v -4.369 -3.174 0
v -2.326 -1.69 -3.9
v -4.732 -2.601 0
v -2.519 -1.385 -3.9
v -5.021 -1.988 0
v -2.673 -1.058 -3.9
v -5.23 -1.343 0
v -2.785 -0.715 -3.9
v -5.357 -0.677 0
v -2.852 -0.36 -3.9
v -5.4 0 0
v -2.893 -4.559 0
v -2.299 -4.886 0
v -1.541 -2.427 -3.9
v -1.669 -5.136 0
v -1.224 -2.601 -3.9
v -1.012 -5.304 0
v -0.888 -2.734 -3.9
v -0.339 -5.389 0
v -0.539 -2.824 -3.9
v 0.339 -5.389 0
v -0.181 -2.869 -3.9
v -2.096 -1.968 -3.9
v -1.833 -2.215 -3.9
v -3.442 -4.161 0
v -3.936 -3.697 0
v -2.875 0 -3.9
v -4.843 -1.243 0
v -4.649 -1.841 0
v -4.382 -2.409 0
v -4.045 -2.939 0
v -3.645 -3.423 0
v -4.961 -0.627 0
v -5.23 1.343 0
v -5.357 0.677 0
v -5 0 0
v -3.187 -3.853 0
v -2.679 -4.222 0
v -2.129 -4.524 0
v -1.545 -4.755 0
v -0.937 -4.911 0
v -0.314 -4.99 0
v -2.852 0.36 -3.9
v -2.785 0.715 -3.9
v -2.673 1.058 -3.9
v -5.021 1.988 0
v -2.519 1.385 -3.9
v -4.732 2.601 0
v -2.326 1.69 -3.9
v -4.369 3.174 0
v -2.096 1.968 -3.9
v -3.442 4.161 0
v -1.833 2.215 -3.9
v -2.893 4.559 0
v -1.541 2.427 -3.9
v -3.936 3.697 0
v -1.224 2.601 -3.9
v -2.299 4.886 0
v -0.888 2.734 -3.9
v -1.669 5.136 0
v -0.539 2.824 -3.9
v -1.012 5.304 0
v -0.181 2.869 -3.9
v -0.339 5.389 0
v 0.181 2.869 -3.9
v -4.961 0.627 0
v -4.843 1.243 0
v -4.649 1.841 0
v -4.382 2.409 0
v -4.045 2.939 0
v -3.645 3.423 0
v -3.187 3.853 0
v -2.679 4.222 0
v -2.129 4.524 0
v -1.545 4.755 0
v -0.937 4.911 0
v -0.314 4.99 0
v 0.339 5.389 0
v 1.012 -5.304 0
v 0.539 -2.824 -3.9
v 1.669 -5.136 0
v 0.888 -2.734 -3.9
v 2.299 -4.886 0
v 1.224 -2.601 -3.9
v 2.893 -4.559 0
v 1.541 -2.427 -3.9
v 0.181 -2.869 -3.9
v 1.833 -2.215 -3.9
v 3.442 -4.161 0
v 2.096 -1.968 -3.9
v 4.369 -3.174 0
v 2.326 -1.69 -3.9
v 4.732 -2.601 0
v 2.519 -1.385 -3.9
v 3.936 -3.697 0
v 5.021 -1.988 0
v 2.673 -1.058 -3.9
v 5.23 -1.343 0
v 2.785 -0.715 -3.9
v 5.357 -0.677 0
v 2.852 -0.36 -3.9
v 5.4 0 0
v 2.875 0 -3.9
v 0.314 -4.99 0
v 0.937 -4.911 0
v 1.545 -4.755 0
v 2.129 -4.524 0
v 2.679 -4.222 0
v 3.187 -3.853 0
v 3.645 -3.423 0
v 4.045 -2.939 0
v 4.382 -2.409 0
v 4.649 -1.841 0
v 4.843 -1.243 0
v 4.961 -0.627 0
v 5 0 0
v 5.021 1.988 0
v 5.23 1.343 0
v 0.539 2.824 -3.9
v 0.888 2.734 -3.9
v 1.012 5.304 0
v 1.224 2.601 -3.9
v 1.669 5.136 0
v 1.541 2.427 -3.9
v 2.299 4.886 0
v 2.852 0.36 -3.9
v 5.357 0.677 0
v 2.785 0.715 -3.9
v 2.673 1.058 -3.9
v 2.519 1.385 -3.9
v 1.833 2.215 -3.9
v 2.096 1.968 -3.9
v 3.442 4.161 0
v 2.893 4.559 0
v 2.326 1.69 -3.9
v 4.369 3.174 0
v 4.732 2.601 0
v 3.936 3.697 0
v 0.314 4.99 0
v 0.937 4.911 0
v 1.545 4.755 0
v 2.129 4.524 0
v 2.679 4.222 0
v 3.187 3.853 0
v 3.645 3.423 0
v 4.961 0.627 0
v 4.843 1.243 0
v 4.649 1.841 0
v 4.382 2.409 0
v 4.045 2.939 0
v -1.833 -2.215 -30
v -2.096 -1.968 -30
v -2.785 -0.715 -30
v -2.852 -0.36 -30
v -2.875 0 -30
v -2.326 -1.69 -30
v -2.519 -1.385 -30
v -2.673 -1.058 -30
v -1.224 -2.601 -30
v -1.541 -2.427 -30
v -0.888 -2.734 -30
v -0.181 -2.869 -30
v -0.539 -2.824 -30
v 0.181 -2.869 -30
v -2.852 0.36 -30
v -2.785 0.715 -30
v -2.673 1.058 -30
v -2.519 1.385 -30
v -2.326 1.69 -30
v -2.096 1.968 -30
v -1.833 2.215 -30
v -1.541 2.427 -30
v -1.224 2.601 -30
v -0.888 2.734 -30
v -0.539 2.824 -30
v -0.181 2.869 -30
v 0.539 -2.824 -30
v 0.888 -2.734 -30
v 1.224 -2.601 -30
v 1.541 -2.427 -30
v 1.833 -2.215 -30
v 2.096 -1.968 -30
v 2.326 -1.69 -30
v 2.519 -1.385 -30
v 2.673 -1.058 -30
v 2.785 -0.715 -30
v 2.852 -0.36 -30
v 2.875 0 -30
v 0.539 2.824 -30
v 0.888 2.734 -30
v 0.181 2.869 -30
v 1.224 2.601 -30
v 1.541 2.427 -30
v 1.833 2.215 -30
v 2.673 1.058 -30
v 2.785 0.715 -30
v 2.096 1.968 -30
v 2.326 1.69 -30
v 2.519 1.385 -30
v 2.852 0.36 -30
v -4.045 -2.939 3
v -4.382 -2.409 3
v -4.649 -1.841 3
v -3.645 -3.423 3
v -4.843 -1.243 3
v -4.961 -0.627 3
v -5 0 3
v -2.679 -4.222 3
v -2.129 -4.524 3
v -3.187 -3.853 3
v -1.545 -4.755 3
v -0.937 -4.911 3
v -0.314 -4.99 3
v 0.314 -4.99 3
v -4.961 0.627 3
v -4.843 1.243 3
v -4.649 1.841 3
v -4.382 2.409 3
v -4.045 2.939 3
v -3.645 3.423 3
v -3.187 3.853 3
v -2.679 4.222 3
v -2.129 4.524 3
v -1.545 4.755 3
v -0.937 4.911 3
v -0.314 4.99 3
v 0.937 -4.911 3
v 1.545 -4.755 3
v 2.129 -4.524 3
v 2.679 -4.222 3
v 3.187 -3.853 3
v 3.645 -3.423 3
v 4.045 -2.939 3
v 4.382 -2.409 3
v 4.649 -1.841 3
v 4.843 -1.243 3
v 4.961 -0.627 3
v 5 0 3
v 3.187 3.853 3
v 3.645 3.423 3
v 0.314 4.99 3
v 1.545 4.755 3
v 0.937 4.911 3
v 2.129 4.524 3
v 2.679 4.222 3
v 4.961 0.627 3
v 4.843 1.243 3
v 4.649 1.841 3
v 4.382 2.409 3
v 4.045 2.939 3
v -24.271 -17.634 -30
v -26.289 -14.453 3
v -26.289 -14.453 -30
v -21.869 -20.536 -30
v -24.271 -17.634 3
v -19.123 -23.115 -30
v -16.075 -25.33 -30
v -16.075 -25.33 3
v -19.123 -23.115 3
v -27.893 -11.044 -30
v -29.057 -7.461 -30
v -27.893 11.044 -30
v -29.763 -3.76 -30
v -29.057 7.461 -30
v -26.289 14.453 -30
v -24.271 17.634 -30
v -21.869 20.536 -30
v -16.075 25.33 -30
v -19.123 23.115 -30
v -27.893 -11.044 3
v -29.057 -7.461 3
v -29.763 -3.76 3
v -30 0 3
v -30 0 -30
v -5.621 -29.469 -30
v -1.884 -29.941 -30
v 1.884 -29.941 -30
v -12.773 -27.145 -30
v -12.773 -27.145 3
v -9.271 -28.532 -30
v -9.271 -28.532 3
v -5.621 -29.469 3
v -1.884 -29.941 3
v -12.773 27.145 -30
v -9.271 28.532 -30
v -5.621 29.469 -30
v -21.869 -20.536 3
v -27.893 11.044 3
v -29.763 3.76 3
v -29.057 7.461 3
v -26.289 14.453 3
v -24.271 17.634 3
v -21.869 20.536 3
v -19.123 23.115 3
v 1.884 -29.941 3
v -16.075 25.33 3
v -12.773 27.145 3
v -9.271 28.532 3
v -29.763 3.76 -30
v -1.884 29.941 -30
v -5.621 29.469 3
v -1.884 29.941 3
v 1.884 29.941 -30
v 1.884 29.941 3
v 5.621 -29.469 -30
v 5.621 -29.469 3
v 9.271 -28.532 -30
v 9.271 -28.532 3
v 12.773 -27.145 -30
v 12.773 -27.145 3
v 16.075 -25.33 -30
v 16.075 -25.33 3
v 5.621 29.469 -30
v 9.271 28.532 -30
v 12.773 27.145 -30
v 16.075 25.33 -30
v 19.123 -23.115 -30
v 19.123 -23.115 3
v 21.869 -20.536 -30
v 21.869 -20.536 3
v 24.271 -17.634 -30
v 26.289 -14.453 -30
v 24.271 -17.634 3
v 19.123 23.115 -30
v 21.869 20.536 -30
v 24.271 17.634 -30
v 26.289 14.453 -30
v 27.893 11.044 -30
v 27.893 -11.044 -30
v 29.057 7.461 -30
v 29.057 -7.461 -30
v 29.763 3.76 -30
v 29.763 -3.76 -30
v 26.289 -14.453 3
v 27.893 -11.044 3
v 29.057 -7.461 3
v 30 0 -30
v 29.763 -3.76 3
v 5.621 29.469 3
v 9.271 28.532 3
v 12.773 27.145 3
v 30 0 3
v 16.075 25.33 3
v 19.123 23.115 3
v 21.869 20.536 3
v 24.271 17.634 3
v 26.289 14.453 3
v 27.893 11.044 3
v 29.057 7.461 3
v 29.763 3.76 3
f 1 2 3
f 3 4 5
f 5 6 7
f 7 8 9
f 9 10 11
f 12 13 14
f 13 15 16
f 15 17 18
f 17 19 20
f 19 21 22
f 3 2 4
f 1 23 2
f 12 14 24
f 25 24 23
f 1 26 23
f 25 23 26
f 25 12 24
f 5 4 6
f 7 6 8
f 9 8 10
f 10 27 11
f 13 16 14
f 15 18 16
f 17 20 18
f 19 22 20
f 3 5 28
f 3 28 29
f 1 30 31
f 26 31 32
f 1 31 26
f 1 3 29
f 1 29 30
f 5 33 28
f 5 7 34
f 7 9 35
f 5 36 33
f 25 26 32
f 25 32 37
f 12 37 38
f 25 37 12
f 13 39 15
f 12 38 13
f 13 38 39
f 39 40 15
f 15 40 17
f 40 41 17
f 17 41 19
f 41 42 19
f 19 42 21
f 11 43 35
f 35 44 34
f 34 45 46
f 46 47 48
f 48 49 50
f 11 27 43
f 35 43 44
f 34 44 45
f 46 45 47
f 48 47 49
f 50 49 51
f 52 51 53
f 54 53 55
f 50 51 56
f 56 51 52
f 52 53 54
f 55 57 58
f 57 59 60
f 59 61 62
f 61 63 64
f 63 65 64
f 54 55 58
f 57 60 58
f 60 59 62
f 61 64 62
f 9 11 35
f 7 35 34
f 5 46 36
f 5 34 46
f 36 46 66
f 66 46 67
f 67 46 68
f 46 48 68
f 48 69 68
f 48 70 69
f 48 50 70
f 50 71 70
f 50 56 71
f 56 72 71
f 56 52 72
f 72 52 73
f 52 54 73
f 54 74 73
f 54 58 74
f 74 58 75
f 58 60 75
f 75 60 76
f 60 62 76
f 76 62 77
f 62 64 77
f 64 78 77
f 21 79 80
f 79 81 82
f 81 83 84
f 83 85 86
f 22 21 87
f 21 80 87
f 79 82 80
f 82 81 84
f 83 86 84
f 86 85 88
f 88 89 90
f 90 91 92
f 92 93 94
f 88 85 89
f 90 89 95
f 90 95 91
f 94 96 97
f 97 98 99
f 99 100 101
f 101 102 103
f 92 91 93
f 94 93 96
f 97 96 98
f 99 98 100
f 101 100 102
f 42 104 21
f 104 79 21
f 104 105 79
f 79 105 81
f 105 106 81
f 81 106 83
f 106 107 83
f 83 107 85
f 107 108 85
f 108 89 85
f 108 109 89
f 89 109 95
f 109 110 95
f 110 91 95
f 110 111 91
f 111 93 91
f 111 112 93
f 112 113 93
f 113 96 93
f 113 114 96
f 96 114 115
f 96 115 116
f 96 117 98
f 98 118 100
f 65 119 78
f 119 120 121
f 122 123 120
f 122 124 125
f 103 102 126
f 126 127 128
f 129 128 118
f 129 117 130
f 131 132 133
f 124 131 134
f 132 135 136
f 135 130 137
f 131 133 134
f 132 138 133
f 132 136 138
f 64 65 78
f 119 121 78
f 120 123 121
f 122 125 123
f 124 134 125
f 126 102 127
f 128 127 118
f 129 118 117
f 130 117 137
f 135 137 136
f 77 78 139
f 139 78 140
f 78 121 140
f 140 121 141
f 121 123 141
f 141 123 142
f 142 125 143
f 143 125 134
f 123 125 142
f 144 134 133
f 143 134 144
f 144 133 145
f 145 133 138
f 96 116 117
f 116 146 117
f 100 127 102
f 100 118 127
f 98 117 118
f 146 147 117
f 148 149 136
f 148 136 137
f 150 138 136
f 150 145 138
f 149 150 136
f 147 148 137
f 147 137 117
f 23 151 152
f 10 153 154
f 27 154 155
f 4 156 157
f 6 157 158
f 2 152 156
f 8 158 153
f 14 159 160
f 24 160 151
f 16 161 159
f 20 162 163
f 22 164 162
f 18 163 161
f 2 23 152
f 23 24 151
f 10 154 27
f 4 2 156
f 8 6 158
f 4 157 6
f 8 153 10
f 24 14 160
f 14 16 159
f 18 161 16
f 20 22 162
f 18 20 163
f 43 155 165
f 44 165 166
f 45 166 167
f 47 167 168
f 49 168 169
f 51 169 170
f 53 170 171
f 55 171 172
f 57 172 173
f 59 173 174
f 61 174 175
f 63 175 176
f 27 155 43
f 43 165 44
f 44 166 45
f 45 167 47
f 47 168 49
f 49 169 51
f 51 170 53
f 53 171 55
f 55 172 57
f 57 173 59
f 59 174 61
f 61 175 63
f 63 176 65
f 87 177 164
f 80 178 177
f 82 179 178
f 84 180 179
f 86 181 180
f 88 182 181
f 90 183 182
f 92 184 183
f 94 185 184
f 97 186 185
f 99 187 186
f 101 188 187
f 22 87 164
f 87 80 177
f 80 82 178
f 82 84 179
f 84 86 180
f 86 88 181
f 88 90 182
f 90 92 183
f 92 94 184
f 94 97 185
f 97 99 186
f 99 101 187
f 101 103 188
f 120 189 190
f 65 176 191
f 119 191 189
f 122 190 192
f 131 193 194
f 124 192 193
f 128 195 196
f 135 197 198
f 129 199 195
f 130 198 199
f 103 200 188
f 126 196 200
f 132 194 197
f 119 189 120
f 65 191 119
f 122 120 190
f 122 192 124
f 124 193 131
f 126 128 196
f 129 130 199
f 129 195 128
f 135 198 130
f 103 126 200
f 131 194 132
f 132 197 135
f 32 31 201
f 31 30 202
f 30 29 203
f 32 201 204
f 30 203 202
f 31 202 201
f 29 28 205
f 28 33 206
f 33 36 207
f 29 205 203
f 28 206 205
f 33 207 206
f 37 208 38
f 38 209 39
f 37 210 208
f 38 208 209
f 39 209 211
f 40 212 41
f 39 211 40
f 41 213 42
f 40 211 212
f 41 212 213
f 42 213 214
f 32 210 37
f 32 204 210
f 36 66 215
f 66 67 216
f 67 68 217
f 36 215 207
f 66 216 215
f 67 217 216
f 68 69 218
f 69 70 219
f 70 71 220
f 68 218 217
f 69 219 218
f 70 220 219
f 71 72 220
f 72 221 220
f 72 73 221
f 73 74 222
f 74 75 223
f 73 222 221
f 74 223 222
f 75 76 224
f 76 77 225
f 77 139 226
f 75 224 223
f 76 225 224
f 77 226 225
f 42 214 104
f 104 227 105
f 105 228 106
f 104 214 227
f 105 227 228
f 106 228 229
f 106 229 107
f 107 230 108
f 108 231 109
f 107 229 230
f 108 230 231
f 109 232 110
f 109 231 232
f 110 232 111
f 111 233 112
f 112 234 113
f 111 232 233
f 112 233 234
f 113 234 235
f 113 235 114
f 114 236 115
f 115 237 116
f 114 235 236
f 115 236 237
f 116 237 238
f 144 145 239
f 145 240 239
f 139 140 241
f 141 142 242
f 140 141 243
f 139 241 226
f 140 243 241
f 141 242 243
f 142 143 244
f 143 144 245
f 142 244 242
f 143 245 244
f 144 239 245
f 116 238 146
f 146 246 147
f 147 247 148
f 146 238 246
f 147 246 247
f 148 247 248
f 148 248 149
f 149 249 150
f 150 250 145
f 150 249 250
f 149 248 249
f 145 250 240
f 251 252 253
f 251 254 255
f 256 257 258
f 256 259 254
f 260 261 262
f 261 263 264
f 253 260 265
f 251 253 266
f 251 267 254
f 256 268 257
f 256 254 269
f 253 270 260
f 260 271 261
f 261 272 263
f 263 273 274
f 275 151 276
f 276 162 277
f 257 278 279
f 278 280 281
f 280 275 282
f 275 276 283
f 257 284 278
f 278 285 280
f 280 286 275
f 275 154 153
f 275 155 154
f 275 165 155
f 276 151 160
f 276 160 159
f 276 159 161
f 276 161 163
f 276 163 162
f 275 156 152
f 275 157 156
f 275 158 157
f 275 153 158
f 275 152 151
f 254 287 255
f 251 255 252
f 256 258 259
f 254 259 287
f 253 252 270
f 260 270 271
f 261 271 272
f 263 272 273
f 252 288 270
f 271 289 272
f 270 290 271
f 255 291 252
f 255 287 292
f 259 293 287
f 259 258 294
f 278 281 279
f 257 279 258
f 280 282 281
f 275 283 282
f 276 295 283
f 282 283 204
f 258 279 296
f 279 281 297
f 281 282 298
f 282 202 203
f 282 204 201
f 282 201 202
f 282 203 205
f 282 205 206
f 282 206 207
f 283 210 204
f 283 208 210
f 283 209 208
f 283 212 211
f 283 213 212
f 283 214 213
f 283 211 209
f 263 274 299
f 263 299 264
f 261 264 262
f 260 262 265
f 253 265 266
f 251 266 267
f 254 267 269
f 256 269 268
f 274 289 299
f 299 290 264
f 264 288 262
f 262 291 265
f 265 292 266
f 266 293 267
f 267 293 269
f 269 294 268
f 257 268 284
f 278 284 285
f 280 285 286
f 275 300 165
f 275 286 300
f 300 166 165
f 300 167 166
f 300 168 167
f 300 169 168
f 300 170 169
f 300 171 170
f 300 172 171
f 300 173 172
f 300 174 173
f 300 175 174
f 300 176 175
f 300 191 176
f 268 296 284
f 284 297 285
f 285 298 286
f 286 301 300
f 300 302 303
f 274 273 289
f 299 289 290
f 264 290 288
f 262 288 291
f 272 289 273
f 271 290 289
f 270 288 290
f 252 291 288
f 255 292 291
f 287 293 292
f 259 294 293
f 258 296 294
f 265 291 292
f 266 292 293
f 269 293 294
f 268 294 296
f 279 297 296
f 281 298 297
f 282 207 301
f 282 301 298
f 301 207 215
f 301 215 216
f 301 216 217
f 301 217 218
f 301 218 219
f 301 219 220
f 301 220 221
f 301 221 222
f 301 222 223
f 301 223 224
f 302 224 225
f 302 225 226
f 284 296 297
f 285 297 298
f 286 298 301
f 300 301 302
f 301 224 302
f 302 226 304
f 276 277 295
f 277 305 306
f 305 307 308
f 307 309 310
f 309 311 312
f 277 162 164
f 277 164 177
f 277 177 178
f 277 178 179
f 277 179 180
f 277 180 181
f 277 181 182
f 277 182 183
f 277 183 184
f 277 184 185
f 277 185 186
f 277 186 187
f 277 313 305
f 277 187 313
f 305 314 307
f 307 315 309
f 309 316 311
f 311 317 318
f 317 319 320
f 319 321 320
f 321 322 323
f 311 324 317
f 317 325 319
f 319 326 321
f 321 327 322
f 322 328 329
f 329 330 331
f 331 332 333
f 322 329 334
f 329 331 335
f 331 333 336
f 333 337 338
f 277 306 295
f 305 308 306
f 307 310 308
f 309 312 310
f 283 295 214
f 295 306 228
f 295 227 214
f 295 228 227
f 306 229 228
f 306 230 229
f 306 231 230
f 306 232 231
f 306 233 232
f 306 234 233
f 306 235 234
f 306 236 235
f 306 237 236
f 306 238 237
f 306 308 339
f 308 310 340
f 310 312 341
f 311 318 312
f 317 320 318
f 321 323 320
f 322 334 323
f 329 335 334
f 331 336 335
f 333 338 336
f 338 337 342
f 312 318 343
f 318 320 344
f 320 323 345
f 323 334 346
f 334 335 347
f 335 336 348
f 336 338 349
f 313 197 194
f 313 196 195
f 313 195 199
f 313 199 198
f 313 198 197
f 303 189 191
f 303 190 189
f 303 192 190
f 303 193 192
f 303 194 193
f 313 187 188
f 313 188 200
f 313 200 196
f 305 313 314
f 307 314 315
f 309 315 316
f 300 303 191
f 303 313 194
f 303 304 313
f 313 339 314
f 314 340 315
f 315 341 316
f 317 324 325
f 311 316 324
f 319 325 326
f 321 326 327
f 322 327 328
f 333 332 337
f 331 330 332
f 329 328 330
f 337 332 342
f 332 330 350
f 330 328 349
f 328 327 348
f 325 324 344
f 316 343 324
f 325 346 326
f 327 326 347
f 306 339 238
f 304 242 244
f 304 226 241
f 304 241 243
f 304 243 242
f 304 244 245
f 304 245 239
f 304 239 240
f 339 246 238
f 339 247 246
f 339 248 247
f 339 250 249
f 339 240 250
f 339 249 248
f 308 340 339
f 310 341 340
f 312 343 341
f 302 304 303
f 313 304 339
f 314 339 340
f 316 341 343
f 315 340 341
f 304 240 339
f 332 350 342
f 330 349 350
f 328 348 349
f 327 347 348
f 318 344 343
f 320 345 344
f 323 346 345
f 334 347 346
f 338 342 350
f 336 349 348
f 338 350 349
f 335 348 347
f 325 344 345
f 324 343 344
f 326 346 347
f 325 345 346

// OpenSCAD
$fn = 50;

difference() {
	union() {
		translate(v = [0, 0, -30.0]) {
			cylinder(h = 33, r = 30.0);
		}
	}
	union() {
		translate(v = [0, 0, 0]) {
			rotate(a = [0, 0, 0]) {
				difference() {
					union() {
						translate(v = [0, 0, -33.0]) {
							cylinder(h = 33, r = 2.6);
						}
						translate(v = [0, 0, -3.9]) {
							cylinder(h = 3.9, r1 = 2.875, r2 = 5.4);
						}
						translate(v = [0, 0, -33.0]) {
							cylinder(h = 33, r = 2.875);
						}
						translate(v = [0, 0, -33.0]) {
							cylinder(h = 33, r = 2.6);
						}
					}
					union();
				}
			}
		}
		#cylinder(h = 3, r = 5.0);
	}
}
